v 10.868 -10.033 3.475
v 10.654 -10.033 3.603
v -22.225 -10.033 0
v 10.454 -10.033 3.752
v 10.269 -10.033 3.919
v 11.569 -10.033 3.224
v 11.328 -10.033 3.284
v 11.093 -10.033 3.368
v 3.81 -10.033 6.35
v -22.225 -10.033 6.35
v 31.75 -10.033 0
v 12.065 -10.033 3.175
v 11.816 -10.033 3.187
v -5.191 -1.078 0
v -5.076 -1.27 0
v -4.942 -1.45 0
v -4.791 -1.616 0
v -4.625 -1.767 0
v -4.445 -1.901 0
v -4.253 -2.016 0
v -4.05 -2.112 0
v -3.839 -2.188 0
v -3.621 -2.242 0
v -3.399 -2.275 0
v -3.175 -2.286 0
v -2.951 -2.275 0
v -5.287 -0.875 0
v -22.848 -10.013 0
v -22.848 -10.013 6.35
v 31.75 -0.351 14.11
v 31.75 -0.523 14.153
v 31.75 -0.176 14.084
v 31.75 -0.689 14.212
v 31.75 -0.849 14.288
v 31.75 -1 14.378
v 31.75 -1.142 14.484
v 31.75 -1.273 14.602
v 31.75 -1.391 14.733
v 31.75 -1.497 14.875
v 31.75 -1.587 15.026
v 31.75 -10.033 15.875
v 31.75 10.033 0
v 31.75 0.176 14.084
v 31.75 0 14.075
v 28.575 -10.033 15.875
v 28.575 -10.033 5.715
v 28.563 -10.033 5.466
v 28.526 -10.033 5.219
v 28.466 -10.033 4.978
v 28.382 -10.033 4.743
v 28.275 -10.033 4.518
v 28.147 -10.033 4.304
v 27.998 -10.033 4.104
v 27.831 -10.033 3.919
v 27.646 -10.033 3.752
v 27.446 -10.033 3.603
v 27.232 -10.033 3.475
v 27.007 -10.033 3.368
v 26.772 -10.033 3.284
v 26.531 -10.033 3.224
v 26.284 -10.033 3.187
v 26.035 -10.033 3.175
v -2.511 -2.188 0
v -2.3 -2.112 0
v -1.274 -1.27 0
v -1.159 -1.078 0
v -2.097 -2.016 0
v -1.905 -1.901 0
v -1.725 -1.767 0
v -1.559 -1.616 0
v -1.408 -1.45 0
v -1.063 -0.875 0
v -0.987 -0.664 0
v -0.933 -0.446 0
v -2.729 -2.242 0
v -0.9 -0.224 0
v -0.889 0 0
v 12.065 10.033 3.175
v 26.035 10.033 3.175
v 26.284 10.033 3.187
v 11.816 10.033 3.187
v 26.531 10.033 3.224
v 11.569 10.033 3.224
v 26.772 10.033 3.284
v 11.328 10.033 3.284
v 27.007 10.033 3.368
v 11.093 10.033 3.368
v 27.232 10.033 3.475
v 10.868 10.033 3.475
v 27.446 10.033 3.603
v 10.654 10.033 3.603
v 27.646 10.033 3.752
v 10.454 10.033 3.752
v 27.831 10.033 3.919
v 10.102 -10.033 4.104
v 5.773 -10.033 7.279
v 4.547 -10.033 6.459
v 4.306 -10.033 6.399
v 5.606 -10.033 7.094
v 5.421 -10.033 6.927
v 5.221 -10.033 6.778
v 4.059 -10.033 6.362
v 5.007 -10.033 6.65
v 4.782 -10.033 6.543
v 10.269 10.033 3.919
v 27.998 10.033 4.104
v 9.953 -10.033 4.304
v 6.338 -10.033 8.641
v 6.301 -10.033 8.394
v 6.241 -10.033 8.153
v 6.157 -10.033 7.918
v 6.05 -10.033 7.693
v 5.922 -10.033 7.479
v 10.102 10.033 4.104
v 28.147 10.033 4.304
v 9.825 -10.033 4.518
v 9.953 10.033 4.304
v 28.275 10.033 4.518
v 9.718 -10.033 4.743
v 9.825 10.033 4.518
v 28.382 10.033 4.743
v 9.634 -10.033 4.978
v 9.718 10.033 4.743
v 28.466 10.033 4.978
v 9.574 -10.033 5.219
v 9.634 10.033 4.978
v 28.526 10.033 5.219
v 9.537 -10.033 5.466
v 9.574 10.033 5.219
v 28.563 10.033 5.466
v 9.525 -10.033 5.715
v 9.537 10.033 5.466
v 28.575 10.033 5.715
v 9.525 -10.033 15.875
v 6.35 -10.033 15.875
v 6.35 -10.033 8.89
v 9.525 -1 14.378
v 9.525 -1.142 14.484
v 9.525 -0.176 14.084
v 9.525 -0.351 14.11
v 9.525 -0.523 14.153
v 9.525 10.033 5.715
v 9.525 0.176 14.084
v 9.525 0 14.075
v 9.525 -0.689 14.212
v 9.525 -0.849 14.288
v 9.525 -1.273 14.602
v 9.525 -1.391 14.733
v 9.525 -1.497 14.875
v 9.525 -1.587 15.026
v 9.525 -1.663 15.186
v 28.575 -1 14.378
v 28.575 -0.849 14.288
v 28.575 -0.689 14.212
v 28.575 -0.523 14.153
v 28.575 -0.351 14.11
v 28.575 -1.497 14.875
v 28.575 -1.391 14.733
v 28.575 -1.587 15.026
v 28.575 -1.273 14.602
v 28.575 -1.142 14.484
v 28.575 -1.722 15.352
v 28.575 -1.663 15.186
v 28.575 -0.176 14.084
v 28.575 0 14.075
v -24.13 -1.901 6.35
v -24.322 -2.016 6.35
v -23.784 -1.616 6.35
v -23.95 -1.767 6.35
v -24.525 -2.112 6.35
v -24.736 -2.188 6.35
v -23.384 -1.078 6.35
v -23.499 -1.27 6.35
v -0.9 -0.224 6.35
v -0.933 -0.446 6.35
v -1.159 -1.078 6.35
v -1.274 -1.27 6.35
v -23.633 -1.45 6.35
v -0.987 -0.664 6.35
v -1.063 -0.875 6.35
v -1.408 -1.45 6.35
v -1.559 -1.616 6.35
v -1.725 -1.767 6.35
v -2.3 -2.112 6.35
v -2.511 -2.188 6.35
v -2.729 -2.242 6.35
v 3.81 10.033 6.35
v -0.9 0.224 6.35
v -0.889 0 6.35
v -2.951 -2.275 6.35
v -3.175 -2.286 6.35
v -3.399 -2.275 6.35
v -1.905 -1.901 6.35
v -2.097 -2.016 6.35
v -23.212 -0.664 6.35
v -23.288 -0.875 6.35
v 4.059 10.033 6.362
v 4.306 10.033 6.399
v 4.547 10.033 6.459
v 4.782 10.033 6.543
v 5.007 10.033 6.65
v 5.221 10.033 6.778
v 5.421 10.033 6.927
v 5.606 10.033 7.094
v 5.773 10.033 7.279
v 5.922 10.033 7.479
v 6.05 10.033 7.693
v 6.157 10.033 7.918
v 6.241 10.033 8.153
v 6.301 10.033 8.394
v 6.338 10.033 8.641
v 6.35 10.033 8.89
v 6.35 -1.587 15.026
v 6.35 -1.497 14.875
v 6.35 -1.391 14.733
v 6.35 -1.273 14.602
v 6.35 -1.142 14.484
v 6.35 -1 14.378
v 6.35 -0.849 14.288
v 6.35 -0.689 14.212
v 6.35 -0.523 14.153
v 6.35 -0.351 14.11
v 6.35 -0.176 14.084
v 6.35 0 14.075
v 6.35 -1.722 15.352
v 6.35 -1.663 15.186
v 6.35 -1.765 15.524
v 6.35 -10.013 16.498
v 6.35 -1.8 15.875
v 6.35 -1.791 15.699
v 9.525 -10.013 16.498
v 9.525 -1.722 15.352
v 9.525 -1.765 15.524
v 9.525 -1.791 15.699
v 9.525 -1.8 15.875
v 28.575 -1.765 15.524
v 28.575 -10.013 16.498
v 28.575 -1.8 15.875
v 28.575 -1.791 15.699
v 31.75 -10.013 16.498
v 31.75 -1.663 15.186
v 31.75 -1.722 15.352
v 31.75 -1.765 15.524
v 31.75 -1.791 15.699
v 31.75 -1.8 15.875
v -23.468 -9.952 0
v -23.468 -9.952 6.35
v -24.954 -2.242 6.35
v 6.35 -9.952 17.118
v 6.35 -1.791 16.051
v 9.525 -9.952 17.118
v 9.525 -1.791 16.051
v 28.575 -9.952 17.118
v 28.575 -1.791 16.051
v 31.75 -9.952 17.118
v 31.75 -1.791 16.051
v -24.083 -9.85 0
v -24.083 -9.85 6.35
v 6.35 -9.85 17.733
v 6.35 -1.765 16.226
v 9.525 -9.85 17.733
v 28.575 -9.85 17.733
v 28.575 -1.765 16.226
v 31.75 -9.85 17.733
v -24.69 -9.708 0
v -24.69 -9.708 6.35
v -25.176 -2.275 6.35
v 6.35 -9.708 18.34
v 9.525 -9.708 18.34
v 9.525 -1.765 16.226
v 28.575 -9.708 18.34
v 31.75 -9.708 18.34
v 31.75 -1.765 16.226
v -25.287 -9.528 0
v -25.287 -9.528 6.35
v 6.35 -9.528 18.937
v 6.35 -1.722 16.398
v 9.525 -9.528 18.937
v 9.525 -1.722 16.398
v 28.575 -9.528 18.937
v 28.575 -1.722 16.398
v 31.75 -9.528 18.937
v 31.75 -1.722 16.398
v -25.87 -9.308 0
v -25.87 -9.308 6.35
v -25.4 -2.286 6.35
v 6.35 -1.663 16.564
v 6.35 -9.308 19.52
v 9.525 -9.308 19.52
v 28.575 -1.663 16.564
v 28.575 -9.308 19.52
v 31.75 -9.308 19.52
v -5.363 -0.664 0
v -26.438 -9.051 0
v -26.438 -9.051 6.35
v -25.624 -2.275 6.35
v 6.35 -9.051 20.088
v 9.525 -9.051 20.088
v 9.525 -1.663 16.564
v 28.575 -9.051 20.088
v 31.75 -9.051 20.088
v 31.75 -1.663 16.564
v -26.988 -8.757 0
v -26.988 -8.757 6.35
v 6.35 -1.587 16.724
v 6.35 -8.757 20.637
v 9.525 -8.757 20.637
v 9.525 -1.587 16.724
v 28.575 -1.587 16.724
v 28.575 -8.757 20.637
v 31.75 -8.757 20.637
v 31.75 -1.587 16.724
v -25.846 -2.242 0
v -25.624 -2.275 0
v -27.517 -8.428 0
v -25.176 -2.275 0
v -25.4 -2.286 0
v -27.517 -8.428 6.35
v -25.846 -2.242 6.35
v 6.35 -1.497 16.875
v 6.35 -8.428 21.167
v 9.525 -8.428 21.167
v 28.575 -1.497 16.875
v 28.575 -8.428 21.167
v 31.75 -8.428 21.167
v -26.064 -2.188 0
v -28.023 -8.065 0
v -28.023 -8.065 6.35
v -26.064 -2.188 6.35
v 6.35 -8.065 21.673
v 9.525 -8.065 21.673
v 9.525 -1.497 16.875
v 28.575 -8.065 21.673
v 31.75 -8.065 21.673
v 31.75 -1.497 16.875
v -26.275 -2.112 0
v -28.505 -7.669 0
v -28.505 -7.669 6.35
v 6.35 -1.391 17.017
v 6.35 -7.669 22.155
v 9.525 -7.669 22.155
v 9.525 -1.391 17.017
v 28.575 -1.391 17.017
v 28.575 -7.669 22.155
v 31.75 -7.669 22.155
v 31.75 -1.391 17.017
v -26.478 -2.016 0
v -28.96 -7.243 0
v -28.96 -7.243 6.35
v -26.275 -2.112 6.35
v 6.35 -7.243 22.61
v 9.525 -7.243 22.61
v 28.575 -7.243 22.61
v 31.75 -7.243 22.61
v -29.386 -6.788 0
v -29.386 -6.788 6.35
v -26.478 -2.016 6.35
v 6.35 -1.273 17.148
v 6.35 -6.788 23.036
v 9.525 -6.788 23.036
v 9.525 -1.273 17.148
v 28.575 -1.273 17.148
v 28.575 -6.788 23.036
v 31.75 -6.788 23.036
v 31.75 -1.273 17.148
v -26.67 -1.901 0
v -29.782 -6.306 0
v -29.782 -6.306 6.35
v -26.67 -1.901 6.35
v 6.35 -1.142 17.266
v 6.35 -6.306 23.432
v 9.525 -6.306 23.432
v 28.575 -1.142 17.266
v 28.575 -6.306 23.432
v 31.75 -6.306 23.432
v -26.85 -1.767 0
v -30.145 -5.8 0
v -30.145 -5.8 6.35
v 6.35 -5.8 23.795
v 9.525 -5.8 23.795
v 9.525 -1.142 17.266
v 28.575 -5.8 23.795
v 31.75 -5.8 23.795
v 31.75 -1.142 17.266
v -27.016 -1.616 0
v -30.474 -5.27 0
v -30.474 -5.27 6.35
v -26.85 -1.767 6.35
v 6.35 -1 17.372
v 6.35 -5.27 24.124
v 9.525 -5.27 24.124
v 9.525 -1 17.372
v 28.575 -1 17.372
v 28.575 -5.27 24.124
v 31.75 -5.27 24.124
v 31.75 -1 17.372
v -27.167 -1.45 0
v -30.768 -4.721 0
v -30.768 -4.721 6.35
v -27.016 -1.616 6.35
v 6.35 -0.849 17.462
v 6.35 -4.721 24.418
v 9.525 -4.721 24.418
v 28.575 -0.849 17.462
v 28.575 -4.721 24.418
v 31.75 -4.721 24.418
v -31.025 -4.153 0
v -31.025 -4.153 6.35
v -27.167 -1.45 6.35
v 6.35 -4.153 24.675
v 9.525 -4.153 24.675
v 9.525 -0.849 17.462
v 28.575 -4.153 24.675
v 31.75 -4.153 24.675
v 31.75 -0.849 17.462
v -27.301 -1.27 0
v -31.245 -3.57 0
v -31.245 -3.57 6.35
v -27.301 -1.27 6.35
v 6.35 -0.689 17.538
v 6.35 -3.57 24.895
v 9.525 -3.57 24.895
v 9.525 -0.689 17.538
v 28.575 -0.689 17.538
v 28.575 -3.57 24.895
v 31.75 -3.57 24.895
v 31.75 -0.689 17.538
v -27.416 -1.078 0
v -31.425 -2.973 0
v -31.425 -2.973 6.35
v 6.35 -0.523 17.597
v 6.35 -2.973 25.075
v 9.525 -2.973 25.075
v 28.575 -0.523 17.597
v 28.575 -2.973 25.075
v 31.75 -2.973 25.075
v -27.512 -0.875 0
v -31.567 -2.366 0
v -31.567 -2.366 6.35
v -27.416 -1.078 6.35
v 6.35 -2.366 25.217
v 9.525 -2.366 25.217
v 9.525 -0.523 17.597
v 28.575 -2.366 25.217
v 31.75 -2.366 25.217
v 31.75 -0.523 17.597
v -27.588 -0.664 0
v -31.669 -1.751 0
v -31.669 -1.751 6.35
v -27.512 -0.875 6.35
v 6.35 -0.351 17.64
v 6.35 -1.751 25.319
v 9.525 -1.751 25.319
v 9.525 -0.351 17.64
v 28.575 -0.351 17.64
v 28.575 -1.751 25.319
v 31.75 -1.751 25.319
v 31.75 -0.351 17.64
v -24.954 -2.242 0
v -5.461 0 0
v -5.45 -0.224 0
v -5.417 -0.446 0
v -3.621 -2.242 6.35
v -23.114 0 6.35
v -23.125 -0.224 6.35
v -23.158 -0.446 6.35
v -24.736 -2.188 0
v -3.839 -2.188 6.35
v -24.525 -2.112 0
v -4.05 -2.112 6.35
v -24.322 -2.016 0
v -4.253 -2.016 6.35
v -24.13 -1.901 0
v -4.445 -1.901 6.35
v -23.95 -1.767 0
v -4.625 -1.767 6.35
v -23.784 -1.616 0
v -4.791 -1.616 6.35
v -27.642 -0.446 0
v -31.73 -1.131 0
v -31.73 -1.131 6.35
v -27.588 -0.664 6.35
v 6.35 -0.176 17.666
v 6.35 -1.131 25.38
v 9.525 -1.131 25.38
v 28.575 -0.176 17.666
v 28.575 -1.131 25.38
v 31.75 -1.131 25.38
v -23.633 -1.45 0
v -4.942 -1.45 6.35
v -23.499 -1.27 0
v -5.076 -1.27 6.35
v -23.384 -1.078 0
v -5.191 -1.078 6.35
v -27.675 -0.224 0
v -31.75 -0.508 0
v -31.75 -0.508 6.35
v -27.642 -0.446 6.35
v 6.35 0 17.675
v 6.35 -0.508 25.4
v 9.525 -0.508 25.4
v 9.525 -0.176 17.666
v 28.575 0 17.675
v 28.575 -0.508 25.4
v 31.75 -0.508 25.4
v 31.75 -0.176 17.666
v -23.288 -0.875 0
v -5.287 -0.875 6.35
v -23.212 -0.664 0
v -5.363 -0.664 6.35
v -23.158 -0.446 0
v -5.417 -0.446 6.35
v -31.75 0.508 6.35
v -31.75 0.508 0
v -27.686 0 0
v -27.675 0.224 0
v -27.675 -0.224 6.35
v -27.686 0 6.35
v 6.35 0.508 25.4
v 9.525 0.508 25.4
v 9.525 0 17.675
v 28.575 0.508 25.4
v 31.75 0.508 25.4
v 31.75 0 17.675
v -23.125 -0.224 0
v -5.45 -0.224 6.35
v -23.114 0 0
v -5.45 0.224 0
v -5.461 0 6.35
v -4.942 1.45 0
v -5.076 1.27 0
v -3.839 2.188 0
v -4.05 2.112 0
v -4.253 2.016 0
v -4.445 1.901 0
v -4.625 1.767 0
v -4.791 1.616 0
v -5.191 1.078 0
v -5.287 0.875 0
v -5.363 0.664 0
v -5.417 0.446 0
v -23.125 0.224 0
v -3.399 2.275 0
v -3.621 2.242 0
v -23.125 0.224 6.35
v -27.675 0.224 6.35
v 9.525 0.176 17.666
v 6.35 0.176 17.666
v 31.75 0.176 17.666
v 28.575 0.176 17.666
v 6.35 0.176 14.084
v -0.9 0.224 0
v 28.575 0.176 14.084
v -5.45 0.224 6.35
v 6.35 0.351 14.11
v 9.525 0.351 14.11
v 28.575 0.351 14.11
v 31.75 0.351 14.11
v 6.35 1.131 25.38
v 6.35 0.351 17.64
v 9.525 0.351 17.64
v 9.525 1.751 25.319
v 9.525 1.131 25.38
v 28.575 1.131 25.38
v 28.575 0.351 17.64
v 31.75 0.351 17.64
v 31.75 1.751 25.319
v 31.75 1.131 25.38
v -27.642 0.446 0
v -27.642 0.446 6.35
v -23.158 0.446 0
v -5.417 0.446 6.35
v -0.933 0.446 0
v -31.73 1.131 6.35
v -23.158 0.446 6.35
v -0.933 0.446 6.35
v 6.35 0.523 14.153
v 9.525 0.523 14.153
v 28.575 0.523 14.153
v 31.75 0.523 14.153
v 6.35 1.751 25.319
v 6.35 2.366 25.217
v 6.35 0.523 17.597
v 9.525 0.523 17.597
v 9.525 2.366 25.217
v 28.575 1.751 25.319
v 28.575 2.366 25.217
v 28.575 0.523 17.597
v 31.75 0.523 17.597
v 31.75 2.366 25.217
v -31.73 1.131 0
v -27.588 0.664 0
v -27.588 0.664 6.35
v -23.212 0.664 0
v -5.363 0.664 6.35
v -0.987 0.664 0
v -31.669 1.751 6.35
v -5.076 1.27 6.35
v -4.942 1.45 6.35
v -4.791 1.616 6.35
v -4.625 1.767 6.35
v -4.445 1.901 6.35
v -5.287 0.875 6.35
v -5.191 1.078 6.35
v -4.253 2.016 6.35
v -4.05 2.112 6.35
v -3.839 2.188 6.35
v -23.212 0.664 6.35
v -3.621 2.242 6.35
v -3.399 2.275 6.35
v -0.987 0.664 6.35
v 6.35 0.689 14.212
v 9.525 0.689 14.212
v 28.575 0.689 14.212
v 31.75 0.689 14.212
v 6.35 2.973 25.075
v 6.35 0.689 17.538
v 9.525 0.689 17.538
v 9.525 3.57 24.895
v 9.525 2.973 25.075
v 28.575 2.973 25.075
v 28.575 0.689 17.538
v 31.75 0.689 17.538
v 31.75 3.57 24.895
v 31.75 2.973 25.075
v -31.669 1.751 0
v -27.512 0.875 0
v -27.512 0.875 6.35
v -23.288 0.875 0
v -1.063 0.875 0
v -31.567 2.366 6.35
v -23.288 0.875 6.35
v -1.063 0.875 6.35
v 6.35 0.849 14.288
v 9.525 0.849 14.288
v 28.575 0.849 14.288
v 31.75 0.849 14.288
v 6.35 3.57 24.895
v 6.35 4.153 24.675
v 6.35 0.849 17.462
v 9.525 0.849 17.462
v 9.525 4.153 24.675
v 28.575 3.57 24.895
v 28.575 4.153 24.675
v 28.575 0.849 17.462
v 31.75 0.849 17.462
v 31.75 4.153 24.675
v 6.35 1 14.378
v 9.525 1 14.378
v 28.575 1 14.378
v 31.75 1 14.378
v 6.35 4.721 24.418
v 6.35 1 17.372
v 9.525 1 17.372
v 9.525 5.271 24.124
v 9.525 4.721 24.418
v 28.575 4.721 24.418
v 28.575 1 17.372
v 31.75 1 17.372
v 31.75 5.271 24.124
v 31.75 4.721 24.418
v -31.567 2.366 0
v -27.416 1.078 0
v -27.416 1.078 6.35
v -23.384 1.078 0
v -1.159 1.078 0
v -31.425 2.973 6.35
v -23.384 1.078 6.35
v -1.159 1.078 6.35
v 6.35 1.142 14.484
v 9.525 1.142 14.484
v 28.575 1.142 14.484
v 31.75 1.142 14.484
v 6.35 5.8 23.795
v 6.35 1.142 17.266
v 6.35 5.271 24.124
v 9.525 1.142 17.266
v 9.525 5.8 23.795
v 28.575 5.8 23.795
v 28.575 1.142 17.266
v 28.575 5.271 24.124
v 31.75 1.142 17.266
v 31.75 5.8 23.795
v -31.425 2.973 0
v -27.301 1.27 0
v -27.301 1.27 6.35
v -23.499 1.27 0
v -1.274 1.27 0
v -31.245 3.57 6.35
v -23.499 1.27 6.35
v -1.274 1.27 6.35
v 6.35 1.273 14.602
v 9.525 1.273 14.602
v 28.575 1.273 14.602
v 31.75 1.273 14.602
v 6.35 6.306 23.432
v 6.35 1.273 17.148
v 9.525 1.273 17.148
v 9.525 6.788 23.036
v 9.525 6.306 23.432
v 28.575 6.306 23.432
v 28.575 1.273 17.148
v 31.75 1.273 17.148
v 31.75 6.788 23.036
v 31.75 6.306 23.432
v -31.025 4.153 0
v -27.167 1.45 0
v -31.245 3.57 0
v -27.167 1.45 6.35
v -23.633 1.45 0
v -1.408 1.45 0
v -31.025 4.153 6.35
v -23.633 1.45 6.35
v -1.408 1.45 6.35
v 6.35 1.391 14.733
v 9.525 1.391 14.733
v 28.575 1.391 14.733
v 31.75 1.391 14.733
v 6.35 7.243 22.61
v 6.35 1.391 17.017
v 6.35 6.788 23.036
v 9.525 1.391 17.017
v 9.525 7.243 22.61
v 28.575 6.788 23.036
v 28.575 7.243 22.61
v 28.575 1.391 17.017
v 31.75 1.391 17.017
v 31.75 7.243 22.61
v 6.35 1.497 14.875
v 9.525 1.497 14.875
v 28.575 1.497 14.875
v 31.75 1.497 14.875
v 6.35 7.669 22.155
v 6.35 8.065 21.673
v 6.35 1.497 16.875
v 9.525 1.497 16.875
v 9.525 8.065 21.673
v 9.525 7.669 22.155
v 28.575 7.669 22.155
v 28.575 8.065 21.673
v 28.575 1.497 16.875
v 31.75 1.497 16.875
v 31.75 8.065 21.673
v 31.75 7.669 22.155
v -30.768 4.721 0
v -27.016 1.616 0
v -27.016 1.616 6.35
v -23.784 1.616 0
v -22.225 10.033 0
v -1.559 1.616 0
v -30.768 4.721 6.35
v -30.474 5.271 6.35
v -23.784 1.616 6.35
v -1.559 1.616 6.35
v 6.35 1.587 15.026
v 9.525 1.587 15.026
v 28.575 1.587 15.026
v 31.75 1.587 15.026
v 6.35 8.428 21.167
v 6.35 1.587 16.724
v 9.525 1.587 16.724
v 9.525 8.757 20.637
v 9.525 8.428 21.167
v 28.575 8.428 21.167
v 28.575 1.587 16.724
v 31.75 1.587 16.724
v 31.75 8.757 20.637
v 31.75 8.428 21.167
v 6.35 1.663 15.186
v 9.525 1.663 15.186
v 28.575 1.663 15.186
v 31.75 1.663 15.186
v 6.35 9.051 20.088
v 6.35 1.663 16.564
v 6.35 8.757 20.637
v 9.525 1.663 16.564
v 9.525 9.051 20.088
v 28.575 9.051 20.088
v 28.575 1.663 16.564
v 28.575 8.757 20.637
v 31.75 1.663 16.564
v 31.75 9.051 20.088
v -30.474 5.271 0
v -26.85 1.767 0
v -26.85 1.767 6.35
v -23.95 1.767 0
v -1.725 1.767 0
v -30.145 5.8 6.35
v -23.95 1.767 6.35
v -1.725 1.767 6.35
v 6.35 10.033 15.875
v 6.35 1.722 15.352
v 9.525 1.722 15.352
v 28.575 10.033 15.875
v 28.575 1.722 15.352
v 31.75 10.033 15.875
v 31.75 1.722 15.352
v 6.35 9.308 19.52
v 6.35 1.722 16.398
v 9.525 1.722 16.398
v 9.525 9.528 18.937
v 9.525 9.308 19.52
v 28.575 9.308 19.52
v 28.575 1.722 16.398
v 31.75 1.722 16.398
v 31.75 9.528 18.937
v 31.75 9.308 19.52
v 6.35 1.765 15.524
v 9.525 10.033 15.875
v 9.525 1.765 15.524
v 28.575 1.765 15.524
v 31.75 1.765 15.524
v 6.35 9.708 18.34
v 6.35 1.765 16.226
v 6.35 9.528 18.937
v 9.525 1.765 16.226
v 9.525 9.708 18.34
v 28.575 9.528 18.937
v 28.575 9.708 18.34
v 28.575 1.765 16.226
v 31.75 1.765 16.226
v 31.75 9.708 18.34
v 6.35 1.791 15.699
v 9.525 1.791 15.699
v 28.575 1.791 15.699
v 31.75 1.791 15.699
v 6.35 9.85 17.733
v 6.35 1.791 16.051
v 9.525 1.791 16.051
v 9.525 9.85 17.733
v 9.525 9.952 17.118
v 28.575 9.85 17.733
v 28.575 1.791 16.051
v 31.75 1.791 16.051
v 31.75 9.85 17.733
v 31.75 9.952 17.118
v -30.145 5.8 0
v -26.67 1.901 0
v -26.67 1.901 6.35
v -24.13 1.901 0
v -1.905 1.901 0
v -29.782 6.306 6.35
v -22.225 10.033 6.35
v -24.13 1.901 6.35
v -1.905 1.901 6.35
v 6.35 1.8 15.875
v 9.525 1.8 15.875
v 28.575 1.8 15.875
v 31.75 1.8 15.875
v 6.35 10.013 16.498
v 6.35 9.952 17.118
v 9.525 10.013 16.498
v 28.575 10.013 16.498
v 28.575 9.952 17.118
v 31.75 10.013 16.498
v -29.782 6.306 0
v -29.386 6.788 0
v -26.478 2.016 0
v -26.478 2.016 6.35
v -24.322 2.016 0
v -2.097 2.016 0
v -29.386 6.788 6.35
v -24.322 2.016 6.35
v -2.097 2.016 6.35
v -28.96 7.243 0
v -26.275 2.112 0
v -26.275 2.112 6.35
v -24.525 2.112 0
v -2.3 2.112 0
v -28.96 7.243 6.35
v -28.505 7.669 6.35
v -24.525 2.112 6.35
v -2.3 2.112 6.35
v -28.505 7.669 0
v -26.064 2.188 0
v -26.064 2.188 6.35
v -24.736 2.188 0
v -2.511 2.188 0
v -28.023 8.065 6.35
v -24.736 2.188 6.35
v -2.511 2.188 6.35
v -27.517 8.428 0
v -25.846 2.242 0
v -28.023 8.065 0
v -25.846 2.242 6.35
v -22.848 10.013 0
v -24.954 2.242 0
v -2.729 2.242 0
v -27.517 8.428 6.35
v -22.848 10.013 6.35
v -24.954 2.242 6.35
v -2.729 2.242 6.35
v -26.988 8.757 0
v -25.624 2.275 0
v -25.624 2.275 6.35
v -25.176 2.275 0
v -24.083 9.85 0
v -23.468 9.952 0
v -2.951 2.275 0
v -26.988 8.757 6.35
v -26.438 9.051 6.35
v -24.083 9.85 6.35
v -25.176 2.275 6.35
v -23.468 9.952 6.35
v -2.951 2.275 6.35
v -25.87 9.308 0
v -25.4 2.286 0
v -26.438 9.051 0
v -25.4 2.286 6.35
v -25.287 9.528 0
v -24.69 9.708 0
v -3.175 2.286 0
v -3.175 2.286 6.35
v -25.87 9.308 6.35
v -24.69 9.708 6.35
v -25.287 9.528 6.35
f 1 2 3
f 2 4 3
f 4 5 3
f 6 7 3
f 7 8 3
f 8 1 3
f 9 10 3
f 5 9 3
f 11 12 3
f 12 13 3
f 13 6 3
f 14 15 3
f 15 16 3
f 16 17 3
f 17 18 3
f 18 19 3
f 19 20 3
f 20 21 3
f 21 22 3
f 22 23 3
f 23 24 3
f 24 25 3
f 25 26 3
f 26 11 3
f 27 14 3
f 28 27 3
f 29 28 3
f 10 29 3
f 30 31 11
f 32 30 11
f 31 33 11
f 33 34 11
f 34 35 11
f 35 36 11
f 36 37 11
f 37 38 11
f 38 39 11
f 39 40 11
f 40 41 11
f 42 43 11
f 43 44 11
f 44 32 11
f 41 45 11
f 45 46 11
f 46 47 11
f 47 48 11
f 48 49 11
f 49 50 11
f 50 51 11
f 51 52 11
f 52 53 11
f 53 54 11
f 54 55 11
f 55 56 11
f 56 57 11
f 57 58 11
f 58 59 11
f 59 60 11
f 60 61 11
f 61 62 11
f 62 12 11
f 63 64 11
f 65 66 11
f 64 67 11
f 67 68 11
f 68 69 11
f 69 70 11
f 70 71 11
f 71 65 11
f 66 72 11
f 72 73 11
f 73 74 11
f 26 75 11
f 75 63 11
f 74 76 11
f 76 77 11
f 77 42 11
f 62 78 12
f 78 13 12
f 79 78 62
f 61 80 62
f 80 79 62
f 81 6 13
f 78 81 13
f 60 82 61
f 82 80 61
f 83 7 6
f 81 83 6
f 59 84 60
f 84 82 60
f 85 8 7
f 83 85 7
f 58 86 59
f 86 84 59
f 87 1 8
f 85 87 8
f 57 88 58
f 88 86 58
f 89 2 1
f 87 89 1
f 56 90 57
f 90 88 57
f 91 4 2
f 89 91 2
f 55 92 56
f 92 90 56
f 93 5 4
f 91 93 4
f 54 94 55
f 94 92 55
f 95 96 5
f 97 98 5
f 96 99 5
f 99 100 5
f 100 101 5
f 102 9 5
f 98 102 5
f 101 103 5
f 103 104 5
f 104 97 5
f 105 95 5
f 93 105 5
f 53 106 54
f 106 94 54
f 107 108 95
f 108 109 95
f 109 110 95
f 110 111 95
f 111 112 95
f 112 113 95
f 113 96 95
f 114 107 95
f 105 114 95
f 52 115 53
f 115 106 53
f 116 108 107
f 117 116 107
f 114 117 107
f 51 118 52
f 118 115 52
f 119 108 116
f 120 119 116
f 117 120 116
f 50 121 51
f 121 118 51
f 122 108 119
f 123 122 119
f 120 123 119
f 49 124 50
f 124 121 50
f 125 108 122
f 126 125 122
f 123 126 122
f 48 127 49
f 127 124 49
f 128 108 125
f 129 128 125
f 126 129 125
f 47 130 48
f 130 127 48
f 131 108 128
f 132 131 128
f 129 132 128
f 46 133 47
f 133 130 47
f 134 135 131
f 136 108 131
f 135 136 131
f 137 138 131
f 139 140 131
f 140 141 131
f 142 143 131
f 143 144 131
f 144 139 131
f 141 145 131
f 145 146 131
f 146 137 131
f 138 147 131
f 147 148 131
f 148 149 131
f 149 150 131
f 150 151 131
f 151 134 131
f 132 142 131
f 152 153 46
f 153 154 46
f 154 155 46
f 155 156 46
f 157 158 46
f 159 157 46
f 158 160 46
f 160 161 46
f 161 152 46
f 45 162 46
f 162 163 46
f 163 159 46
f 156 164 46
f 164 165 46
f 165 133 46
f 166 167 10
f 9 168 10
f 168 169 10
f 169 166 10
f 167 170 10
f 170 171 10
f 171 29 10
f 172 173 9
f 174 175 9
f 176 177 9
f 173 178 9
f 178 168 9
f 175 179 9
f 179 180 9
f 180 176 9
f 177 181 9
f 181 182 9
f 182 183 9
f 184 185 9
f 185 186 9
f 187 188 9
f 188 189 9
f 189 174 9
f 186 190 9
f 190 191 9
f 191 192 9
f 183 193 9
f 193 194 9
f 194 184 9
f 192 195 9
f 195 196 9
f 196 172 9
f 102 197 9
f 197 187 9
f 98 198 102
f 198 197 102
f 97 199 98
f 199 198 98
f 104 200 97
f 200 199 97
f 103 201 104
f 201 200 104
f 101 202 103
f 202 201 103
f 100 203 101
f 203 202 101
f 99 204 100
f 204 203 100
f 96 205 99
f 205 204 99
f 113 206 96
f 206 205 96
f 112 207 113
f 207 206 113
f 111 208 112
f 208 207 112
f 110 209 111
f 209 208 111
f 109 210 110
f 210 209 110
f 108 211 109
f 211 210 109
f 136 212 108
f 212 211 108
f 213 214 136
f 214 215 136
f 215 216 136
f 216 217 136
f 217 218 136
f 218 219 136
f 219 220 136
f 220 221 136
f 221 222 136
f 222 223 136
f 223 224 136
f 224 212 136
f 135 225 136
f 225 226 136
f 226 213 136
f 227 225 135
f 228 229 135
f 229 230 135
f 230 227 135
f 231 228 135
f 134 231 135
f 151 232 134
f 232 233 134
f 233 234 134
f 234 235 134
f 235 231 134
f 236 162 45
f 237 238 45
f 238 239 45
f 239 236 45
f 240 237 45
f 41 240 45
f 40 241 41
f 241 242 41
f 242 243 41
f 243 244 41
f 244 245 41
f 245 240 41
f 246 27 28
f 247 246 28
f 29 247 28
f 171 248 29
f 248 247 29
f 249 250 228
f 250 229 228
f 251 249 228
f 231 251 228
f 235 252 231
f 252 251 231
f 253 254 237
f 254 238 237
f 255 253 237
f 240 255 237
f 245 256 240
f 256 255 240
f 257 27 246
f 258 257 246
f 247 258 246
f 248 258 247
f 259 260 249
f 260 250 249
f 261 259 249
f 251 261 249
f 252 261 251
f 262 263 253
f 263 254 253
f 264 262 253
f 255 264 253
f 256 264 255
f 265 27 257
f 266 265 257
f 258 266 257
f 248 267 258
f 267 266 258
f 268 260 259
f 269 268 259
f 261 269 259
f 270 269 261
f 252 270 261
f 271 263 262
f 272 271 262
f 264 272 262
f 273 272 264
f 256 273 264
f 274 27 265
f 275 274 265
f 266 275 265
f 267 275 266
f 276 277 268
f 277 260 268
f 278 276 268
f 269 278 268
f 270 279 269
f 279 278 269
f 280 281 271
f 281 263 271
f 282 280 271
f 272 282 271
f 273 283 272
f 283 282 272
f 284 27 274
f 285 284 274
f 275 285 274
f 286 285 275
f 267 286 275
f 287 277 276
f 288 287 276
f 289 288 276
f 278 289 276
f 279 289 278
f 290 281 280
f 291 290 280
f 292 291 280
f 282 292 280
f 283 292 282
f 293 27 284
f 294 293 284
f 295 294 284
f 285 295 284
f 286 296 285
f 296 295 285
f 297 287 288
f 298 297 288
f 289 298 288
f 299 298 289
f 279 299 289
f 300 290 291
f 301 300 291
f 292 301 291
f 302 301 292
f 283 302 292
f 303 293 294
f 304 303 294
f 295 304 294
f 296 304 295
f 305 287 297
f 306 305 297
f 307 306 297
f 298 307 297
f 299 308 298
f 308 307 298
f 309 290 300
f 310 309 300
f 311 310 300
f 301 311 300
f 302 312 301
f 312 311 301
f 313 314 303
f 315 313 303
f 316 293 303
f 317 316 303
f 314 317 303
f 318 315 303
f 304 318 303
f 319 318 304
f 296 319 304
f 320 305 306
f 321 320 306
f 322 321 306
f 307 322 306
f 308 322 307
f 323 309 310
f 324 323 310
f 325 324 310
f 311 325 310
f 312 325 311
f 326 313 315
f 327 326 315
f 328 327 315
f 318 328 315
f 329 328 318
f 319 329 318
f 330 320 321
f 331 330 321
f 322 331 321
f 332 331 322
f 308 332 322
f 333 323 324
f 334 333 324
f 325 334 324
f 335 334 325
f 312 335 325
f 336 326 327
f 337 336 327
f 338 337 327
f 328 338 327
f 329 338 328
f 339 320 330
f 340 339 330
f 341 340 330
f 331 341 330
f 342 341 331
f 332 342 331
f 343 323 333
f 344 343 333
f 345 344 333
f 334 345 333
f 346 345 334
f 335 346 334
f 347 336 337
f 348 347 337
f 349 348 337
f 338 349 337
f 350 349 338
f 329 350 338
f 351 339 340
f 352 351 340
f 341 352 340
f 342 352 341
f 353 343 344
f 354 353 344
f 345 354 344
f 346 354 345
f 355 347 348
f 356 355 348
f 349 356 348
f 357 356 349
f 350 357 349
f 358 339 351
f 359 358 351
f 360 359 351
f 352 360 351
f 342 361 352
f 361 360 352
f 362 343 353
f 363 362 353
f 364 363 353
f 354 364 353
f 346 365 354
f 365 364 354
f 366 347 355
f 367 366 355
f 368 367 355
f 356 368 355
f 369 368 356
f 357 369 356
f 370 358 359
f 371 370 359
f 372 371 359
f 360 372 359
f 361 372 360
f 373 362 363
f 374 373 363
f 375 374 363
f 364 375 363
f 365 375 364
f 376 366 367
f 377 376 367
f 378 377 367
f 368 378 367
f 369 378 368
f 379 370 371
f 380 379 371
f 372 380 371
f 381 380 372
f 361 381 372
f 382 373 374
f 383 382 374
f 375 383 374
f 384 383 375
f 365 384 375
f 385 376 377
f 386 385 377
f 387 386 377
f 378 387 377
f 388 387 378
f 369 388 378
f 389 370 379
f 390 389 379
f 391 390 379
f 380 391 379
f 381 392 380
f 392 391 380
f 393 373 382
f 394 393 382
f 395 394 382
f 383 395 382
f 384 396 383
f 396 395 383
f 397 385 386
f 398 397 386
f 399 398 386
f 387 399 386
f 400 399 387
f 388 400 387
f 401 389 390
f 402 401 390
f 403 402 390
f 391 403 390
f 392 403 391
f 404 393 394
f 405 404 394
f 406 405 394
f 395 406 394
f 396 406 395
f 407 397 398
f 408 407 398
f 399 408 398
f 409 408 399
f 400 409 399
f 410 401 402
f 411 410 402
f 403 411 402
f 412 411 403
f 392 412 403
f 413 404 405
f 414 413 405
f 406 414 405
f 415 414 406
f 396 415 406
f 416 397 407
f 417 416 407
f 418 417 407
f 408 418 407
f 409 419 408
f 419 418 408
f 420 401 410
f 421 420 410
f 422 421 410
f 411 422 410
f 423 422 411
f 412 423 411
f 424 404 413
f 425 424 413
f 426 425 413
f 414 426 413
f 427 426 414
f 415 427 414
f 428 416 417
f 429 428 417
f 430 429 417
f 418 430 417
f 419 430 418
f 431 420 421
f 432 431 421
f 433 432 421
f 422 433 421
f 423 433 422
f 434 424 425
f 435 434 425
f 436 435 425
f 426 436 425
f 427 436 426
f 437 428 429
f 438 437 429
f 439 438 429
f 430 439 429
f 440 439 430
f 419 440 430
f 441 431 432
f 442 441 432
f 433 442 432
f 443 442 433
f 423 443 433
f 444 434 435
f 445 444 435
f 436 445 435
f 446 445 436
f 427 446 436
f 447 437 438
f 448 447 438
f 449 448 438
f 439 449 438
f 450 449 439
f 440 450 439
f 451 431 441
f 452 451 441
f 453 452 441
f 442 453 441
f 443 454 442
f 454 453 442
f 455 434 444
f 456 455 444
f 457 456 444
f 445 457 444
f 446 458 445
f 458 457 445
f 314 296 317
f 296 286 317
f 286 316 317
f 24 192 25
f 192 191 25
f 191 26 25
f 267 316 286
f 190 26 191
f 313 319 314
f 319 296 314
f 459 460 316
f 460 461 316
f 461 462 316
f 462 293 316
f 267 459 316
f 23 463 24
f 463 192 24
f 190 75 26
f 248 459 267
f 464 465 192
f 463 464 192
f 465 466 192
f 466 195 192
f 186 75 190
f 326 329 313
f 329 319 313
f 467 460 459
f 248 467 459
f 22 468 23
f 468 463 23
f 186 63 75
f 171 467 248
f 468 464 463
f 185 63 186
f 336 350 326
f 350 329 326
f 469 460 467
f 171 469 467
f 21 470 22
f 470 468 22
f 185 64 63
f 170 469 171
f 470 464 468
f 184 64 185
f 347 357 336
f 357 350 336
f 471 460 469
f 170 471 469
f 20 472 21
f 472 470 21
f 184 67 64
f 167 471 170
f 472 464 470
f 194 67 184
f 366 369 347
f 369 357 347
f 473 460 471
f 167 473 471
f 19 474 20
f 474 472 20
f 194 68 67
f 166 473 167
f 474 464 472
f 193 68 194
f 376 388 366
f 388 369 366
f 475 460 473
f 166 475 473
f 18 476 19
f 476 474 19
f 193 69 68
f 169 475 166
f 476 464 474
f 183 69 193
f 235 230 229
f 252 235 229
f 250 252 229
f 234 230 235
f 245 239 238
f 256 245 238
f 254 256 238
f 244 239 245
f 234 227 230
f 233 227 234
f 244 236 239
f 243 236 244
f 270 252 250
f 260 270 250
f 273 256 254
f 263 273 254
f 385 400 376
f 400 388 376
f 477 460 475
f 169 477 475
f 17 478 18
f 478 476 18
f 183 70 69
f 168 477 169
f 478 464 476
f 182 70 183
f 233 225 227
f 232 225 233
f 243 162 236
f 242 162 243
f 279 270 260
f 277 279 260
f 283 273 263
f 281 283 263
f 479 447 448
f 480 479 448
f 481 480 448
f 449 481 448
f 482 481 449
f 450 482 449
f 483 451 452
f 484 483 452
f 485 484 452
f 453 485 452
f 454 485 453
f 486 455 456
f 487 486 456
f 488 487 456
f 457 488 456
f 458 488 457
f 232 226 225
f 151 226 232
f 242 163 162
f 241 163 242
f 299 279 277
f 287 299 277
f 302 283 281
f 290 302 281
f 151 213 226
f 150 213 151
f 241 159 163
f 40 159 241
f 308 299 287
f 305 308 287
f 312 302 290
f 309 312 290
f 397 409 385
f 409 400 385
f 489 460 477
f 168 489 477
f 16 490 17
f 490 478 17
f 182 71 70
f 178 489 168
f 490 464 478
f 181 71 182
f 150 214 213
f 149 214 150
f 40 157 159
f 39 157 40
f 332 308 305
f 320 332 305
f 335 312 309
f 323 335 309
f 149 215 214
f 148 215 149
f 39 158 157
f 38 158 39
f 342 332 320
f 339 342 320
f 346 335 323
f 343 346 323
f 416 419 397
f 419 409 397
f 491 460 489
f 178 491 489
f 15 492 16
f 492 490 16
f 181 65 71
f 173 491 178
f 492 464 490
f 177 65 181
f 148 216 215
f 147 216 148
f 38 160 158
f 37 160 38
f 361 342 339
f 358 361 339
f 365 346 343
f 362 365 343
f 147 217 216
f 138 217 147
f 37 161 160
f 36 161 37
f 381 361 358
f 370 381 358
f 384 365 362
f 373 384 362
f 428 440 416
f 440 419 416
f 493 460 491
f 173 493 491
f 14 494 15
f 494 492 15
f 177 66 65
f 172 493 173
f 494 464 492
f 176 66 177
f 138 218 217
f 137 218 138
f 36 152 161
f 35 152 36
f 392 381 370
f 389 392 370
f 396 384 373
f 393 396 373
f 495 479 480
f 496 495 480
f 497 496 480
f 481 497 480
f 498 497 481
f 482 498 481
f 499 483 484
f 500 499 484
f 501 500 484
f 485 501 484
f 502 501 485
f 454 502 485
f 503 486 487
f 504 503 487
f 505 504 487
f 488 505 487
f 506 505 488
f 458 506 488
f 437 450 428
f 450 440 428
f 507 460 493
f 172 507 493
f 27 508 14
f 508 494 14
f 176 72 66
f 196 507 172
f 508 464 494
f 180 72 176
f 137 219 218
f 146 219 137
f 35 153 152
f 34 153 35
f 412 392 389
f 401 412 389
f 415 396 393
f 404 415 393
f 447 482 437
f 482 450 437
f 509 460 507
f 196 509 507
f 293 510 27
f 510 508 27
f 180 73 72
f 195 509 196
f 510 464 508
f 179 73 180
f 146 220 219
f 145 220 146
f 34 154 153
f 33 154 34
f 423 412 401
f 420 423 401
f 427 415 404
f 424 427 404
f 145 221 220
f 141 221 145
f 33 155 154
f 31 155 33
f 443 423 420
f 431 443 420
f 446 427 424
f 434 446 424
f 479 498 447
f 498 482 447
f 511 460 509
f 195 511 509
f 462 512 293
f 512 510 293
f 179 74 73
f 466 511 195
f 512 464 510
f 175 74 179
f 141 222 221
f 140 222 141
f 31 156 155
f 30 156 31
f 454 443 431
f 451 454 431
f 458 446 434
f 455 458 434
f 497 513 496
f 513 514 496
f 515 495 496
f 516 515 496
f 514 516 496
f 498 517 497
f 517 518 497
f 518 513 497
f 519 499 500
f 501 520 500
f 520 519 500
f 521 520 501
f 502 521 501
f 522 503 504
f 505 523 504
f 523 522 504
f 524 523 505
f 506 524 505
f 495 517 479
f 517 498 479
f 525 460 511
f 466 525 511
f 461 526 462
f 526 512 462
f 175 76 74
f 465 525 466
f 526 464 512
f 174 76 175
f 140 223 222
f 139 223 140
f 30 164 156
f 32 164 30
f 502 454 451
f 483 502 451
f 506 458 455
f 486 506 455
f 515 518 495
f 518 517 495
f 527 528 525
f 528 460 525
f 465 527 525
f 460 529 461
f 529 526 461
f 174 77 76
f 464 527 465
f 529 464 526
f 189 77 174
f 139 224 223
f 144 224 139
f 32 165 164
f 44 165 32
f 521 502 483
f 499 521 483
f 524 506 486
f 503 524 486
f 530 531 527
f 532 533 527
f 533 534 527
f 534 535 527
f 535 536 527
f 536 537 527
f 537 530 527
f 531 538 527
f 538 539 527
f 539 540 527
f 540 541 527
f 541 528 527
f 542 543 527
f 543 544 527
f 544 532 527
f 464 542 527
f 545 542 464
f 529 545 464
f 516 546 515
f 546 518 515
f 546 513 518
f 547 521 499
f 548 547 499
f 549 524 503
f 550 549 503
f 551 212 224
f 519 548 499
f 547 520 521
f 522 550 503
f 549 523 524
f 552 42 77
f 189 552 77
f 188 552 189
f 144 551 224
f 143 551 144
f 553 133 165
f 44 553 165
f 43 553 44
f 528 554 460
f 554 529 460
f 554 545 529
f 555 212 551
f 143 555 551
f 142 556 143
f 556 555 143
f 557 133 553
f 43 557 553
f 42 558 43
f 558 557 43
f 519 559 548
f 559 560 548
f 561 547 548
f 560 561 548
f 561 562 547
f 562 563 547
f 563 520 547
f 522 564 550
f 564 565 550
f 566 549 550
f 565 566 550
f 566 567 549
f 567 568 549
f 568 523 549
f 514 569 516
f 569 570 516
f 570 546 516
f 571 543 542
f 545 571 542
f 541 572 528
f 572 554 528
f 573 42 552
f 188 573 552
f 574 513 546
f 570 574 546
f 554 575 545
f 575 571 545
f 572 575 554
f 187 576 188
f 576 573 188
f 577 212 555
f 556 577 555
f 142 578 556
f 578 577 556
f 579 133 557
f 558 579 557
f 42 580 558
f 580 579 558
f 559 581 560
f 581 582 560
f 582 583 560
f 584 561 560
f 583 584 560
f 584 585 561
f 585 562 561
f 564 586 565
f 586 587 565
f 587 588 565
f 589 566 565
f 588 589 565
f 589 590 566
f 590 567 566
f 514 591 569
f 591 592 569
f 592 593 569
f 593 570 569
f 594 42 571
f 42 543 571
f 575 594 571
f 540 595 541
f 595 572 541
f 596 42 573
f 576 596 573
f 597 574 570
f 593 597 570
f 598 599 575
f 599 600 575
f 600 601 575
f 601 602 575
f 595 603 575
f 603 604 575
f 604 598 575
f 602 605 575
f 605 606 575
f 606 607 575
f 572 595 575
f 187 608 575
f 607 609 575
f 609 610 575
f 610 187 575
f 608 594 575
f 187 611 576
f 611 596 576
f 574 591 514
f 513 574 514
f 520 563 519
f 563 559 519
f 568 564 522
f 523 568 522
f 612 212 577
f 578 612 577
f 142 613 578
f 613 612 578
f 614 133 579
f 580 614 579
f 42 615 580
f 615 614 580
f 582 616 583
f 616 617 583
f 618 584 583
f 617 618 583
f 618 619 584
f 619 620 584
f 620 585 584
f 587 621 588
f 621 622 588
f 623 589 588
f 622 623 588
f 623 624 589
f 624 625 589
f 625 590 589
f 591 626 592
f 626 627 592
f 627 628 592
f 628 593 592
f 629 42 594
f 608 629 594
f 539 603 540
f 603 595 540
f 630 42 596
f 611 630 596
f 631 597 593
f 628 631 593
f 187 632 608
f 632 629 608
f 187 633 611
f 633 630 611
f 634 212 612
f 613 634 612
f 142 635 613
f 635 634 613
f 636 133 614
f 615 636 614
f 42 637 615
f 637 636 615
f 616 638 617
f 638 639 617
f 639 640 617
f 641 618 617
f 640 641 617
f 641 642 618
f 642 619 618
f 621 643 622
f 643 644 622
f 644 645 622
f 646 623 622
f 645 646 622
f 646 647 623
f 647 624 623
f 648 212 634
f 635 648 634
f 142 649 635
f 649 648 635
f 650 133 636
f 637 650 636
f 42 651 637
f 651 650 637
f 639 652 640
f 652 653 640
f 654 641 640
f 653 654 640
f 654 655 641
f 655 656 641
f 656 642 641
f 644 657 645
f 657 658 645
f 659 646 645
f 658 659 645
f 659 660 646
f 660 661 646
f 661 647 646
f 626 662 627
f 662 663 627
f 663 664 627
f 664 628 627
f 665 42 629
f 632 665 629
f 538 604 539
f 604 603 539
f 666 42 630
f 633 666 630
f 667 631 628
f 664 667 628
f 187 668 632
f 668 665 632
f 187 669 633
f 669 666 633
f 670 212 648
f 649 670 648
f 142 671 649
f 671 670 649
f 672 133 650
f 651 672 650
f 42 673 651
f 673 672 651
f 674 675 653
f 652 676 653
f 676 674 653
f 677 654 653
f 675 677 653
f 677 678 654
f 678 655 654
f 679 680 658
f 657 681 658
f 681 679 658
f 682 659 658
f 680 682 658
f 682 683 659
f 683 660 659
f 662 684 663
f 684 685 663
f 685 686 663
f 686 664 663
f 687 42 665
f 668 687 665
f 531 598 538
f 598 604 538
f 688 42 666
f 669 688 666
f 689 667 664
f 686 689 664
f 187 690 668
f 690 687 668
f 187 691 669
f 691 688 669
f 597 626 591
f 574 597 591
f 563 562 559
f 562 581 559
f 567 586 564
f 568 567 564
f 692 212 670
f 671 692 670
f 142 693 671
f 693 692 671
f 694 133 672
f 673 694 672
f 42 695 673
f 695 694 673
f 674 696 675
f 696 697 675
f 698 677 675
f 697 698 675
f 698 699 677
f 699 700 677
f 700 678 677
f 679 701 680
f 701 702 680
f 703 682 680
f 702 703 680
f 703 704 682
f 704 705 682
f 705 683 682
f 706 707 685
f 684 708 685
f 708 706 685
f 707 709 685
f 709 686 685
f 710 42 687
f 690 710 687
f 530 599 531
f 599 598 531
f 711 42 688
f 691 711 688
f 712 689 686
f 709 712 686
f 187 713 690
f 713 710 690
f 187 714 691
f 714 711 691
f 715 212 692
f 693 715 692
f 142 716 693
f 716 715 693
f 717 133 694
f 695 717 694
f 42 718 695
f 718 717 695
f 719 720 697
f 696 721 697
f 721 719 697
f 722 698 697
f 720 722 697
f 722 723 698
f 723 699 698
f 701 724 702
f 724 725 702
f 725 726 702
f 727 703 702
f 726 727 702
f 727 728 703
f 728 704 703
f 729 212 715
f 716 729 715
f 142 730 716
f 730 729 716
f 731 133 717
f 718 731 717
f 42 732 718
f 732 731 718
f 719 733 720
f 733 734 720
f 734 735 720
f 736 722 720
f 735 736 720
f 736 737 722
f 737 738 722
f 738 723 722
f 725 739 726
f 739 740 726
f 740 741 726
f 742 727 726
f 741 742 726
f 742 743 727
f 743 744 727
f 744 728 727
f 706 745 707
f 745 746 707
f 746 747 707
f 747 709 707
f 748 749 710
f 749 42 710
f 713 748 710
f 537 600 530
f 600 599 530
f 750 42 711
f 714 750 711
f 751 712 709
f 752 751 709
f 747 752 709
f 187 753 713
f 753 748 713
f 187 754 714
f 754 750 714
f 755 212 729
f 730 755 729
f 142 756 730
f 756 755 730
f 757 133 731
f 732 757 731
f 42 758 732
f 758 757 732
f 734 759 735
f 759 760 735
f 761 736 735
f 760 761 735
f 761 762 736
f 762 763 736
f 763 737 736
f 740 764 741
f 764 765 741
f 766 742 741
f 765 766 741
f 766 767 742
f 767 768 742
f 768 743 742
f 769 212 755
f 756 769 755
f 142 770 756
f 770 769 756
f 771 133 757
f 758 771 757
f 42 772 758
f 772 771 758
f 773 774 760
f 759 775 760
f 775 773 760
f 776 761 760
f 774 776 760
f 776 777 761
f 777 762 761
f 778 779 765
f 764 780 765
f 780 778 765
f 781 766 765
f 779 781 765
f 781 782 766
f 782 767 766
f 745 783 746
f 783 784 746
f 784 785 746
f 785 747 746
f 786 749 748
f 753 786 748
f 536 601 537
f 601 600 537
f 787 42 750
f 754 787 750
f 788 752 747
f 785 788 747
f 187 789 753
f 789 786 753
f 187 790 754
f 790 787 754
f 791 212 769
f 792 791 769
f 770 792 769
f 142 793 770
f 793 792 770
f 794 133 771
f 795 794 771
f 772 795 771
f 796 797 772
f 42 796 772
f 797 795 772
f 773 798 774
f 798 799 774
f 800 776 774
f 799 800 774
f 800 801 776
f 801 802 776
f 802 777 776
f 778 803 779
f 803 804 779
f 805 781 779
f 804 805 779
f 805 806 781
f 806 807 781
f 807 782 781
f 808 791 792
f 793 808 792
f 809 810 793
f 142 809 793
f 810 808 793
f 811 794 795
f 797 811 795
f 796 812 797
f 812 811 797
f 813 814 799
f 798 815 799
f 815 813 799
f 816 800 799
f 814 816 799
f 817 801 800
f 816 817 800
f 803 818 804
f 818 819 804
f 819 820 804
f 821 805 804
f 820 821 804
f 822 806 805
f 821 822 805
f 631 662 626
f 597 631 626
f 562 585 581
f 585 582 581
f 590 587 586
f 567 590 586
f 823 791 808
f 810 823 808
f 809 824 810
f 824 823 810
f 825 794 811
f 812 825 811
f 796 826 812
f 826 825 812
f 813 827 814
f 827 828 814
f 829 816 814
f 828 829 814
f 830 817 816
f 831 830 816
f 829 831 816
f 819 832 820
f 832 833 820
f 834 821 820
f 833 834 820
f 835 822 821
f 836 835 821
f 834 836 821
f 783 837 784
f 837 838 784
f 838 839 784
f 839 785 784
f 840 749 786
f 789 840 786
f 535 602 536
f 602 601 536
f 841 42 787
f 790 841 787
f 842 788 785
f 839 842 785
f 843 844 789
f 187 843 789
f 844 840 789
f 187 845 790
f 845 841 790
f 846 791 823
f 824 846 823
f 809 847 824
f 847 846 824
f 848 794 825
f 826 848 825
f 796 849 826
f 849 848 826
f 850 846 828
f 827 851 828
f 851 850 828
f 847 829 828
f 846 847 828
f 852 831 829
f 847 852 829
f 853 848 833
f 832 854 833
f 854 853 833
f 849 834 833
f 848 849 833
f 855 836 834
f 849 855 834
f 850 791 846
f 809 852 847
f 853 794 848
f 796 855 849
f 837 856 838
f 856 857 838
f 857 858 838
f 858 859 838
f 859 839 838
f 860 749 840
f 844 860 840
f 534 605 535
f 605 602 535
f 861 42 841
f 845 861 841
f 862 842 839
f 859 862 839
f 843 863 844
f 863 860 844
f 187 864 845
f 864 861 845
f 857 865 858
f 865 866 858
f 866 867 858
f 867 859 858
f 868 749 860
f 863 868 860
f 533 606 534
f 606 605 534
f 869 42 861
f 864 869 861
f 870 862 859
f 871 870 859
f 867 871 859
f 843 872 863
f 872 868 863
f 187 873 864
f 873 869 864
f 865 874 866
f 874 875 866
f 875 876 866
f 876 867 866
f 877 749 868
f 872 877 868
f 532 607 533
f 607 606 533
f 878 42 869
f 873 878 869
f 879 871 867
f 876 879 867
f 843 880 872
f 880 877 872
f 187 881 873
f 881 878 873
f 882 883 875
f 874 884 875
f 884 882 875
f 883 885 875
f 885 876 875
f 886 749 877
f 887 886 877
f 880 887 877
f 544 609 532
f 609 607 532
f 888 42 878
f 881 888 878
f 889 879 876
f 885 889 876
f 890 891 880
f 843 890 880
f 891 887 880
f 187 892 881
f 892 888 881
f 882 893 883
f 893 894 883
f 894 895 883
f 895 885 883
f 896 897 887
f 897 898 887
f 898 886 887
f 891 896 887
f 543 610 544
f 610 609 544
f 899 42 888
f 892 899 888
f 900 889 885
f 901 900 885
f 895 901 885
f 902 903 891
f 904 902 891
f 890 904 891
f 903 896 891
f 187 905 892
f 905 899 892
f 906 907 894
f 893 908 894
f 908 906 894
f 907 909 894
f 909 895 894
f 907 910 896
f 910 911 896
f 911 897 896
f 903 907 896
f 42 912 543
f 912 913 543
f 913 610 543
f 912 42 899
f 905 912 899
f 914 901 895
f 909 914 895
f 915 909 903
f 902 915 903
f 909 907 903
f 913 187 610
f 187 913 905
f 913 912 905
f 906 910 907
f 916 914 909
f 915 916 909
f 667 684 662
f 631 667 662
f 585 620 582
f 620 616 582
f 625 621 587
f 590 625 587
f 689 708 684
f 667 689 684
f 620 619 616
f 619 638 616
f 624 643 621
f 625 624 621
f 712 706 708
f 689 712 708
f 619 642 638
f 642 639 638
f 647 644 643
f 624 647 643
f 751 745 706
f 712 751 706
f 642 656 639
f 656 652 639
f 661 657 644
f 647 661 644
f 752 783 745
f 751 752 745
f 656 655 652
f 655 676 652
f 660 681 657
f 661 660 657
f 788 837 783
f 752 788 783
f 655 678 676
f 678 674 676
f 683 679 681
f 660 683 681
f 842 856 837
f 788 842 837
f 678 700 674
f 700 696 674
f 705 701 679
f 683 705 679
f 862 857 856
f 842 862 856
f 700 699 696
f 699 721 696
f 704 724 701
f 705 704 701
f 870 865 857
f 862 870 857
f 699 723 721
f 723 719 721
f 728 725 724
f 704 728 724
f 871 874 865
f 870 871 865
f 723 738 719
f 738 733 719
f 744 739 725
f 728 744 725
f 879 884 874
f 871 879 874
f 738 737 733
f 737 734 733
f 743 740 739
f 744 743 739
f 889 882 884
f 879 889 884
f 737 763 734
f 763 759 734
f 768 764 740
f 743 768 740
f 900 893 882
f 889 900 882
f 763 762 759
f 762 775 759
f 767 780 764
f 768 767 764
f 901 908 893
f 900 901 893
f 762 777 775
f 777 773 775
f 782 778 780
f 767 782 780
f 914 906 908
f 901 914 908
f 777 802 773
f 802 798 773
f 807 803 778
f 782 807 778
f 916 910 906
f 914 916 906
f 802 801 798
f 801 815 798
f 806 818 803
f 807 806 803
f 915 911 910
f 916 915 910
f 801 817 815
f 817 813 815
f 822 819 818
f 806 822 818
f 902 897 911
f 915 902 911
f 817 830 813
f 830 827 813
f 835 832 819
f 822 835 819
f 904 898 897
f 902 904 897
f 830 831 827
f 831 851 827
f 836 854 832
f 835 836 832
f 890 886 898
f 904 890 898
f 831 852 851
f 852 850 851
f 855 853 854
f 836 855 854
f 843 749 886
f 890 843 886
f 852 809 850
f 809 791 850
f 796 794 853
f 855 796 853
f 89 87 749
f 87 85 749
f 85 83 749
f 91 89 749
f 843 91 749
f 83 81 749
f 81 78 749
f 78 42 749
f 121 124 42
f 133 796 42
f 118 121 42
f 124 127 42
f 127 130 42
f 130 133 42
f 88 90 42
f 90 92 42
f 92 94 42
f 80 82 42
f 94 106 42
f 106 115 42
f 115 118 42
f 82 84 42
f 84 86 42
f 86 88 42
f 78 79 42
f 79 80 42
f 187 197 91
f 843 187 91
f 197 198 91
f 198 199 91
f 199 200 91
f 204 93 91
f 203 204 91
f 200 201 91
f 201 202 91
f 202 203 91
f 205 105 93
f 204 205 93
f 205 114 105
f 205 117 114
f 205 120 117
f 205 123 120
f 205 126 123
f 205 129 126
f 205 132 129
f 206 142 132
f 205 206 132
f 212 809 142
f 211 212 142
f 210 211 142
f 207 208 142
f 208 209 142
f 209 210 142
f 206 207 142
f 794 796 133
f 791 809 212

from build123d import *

# Parameters (mm, degrees)
SKETCH1_W               = 63.5
SKETCH1_H               = 20.066
BOSS_EXTRUDE1_DEPTH     = 6.35
SKETCH2_W               = 25.4
SKETCH2_H               = 20.066
BOSS_EXTRUDE2_DEPTH     = 3.175
SKETCH4_W               = 3.175
SKETCH4_H               = 20.066
BOSS_EXTRUDE3_DEPTH     = 19.05
SKETCH3_R               = 1.8
CUT_EXTRUDE1_DEPTH      = 61.325
CUT_EXTRUDE1_DEPTH_BACK = 4.175
SKETCH5_R               = 2.286
CUT_EXTRUDE2_DEPTH      = 7.35
SKETCH6_W               = 19.05
SKETCH6_H               = 20.066
CUT_EXTRUDE3_DEPTH      = 3.175
FILLET1_R               = 2.54
FILLET2_R               = 9.525


with BuildPart() as part:
    # Sketch1 → Boss-Extrude1 (new body)
    with BuildSketch(Plane.XY):
        Rectangle(SKETCH1_W, SKETCH1_H)
    extrude(amount=BOSS_EXTRUDE1_DEPTH)

    # Sketch2 → Boss-Extrude2 (add)
    with BuildSketch(Plane(origin=(31.75, 0, 0), x_dir=(0, 0, -1), z_dir=(1, 0, 0))):
        with Locations((-12.7, 0)):
            Rectangle(SKETCH2_W, SKETCH2_H)
    extrude(amount=-BOSS_EXTRUDE2_DEPTH)

    # Sketch4 → Boss-Extrude3 (add)
    with BuildSketch(Plane.XY.offset(6.35)):
        with Locations((7.9375, 0)):
            Rectangle(SKETCH4_W, SKETCH4_H)
    extrude(amount=BOSS_EXTRUDE3_DEPTH)

    # Sketch3 → Cut-Extrude1 (cut, two sides)
    with BuildSketch(Plane.ZY.offset(-28.575)) as cut_extrude1_sk:
        with Locations((15.875, 0)):
            Circle(SKETCH3_R)
    extrude(amount=CUT_EXTRUDE1_DEPTH, mode=Mode.SUBTRACT)
    extrude(cut_extrude1_sk.sketch, amount=-CUT_EXTRUDE1_DEPTH_BACK, mode=Mode.SUBTRACT)

    # Sketch5 → Cut-Extrude2 (cut, through all)
    with BuildSketch(Plane.XY.offset(6.35)):
        with Locations((-3.175, 0)):
            Circle(SKETCH5_R)
        with Locations((-25.4, 0)):
            Circle(SKETCH5_R)
    extrude(amount=-CUT_EXTRUDE2_DEPTH, mode=Mode.SUBTRACT)

    # Sketch6 → Cut-Extrude3 (cut)
    with BuildSketch(Plane.XY.offset(6.35)):
        with Locations((19.05, 0)):
            Rectangle(SKETCH6_W, SKETCH6_H)
    extrude(amount=-CUT_EXTRUDE3_DEPTH, mode=Mode.SUBTRACT)

    # Fillet1
    fillet1_edges = [part.edges().sort_by_distance(p)[0] for p in [
        (6.35, 0, 6.35),
        (28.575, 0, 3.175),
        (9.525, 0, 3.175),
    ]]
    fillet(fillet1_edges, radius=FILLET1_R)

    # Fillet2
    fillet2_edges = [part.edges().sort_by_distance(p)[0] for p in [
        (30.1625, 10.033, 25.4),
        (30.1625, -10.033, 25.4),
        (7.9375, -10.033, 25.4),
        (7.9375, 10.033, 25.4),
        (-31.75, -10.033, 3.175),
        (-31.75, 10.033, 3.175),
    ]]
    fillet(fillet2_edges, radius=FILLET2_R)


solid = part.part
